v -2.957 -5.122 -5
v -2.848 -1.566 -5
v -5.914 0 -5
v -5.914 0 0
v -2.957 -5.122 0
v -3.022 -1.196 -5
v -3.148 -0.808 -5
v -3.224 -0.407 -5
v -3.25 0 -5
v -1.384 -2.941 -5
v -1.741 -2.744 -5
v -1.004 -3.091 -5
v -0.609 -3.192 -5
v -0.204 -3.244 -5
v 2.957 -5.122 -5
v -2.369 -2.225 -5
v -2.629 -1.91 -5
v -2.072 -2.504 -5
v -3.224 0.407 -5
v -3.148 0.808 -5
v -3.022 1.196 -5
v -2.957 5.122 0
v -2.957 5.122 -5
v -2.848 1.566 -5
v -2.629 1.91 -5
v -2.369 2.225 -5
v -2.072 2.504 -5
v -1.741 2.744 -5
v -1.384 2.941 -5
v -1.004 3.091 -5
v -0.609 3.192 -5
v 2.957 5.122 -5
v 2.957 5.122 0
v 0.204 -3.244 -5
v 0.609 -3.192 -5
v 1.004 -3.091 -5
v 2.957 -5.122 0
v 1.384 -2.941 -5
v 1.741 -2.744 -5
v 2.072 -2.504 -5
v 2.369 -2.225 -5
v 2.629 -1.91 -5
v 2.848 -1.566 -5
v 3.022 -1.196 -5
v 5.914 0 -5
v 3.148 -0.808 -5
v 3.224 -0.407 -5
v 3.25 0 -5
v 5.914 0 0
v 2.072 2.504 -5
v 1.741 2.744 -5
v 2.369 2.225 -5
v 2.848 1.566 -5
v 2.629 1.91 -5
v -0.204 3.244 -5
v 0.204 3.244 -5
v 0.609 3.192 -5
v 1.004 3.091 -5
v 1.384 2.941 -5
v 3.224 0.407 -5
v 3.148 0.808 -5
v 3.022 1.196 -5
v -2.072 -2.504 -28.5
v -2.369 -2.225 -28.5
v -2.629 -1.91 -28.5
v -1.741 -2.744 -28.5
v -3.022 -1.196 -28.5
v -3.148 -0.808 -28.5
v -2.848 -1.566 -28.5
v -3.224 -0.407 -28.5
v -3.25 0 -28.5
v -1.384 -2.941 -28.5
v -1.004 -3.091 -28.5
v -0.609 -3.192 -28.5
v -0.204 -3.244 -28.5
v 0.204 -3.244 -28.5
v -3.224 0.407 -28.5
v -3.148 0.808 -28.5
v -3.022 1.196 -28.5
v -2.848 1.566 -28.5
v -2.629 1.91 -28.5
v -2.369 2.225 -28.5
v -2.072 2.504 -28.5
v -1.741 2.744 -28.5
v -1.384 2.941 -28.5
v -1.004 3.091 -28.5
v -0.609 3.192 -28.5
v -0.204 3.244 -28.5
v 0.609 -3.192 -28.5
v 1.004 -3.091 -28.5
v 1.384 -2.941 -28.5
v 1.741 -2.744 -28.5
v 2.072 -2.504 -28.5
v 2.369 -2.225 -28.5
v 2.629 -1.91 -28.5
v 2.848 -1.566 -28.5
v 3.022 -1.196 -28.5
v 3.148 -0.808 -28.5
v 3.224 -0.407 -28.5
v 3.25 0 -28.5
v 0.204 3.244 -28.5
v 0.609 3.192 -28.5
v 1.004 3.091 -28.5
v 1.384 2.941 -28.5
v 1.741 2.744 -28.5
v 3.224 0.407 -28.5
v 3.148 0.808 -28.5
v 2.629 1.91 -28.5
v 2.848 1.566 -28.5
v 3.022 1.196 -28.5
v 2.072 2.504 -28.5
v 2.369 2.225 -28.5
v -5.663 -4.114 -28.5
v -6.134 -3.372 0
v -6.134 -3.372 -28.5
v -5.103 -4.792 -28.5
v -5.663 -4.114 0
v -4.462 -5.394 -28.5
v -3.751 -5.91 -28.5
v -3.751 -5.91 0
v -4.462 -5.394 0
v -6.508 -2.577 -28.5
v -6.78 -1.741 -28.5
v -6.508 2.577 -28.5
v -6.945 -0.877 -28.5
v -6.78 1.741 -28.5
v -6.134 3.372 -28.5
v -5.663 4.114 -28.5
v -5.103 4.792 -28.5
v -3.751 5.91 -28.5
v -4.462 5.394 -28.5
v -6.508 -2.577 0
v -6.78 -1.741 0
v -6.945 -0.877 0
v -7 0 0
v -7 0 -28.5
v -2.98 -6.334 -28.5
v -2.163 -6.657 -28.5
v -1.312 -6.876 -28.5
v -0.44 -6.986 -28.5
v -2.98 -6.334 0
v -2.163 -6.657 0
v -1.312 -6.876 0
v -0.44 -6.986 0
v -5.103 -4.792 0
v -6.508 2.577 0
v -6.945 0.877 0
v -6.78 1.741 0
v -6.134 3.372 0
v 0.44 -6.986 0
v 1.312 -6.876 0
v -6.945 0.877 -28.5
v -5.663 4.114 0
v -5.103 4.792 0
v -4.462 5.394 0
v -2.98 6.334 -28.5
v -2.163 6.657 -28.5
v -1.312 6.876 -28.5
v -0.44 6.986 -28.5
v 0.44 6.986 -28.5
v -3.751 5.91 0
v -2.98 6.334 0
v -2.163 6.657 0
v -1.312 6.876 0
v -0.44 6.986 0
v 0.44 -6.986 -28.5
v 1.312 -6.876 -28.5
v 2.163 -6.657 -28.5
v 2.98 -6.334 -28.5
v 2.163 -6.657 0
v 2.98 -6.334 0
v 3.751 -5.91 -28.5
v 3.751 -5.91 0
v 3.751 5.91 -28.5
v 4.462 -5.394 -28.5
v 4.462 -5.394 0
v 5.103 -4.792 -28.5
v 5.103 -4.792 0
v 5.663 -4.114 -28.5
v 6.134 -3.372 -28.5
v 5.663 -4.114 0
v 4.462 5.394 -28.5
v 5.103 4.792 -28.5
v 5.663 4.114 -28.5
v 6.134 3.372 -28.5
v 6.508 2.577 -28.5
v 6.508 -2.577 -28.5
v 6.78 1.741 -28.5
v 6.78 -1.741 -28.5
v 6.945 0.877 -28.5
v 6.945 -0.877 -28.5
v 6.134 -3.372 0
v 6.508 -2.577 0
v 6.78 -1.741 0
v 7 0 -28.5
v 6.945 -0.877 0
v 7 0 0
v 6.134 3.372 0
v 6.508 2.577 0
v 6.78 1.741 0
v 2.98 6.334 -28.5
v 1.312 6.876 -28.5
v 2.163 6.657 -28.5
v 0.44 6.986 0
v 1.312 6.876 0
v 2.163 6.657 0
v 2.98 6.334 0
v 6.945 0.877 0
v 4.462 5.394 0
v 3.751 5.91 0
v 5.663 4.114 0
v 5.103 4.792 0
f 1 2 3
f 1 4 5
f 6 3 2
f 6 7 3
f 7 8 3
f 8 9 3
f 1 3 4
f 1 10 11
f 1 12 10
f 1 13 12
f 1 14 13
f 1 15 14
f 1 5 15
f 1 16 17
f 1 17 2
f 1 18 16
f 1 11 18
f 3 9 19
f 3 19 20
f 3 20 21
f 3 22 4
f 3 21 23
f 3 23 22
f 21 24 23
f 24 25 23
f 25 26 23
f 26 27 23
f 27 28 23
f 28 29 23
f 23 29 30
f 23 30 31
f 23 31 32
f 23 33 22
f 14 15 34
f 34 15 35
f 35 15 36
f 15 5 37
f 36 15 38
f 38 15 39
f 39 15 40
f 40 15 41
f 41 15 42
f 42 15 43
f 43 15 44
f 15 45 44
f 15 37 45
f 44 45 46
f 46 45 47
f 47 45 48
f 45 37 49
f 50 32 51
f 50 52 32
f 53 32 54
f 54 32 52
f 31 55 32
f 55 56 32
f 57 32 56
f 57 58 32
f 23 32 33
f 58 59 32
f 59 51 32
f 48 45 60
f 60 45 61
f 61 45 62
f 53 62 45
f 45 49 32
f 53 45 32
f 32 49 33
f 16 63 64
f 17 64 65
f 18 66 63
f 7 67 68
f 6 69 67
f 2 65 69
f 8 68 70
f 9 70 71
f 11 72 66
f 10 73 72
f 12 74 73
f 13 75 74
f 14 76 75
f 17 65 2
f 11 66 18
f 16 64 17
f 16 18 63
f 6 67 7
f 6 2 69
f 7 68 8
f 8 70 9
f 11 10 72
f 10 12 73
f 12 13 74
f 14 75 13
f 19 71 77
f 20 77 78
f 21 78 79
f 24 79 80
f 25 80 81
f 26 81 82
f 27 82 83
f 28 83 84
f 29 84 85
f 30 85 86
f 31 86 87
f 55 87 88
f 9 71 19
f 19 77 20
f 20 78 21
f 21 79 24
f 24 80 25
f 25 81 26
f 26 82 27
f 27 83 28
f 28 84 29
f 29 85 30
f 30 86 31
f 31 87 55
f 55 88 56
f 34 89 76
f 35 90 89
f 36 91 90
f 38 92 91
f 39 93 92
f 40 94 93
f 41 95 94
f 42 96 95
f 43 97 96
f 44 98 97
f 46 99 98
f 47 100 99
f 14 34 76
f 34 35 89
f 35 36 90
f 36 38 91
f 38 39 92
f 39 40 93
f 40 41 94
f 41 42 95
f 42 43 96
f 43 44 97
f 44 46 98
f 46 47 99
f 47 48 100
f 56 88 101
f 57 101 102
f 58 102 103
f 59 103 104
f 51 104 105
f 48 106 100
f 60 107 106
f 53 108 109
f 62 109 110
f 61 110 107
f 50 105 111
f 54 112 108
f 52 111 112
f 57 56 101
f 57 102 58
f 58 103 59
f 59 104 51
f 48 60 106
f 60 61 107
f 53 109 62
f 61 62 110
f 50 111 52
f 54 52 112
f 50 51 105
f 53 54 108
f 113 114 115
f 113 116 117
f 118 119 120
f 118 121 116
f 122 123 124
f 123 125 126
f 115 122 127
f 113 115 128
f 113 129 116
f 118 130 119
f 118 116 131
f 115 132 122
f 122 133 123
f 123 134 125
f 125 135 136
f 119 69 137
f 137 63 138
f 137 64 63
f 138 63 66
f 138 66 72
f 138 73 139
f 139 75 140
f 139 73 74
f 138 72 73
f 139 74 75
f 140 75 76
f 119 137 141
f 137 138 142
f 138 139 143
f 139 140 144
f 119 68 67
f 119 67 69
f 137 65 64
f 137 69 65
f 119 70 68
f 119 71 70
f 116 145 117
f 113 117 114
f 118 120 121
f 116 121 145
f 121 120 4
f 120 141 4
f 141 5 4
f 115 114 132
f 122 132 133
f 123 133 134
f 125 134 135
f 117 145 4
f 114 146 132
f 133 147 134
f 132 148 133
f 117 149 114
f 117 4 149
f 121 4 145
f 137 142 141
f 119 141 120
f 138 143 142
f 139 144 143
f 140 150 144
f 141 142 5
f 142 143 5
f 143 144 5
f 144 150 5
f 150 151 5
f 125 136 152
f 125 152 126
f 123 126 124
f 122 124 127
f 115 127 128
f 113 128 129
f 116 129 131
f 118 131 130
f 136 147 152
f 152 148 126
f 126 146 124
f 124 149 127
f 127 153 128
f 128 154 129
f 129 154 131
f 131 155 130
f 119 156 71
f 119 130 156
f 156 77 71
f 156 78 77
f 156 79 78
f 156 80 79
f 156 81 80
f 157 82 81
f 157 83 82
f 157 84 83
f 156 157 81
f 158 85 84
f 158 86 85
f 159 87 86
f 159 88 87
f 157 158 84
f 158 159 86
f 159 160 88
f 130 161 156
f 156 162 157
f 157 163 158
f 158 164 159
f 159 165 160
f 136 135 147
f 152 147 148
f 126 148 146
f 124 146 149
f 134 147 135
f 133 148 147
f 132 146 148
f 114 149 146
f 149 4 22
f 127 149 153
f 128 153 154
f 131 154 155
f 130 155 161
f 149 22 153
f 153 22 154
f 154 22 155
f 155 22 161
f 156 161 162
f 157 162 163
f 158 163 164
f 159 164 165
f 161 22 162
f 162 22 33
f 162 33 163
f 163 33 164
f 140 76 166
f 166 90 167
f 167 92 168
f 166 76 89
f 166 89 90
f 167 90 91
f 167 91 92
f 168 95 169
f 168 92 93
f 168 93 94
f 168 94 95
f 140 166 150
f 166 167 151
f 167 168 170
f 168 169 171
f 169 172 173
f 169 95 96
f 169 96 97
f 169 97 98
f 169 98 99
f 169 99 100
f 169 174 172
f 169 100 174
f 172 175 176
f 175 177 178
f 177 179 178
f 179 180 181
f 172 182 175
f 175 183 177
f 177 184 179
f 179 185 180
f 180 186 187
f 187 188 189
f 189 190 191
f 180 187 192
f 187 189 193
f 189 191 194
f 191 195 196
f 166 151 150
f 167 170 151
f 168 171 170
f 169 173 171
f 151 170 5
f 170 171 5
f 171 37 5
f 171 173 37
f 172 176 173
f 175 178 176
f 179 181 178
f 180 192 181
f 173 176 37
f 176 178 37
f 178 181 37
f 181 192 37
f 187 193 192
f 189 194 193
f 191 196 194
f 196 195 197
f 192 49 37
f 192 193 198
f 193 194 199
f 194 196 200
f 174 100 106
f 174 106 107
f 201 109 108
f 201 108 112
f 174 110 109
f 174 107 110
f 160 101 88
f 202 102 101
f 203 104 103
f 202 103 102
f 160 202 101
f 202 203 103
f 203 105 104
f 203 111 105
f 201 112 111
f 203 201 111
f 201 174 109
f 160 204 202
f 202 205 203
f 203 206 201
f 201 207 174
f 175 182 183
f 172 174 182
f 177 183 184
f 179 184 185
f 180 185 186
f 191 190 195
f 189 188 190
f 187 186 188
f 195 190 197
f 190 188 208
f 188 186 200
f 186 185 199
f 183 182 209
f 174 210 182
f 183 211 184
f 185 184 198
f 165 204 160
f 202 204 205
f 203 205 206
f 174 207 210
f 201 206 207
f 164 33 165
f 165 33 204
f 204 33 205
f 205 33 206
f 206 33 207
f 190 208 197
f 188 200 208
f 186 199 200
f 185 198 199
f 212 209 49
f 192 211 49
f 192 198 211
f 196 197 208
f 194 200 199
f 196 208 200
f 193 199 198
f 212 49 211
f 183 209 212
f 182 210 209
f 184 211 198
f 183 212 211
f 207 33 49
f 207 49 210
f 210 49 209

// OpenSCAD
$fn = 50;

difference() {
	union() {
		translate(v = [0, 0, -28.5]) {
			cylinder(h = 28.5, r = 7.0);
		}
	}
	union() {
		translate(v = [0, 0, 0]) {
			rotate(a = [0, 0, 0]) {
				difference() {
					union() {
						translate(v = [0, 0, -5]) {
							linear_extrude(height = 5) {
								polygon(points = [[5.914249999999999, 0.0], [2.957125, 5.1218907443321156], [-2.9571249999999982, 5.1218907443321156], [-5.914249999999999, 7.242867331857232e-16], [-2.9571250000000022, -5.121890744332115], [2.9571249999999956, -5.121890744332118]]);
							}
						}
					}
					union();
				}
			}
		}
		#translate(v = [0, 0, -100.0]) {
			cylinder(h = 200, r = 3.25);
		}
	}
}
